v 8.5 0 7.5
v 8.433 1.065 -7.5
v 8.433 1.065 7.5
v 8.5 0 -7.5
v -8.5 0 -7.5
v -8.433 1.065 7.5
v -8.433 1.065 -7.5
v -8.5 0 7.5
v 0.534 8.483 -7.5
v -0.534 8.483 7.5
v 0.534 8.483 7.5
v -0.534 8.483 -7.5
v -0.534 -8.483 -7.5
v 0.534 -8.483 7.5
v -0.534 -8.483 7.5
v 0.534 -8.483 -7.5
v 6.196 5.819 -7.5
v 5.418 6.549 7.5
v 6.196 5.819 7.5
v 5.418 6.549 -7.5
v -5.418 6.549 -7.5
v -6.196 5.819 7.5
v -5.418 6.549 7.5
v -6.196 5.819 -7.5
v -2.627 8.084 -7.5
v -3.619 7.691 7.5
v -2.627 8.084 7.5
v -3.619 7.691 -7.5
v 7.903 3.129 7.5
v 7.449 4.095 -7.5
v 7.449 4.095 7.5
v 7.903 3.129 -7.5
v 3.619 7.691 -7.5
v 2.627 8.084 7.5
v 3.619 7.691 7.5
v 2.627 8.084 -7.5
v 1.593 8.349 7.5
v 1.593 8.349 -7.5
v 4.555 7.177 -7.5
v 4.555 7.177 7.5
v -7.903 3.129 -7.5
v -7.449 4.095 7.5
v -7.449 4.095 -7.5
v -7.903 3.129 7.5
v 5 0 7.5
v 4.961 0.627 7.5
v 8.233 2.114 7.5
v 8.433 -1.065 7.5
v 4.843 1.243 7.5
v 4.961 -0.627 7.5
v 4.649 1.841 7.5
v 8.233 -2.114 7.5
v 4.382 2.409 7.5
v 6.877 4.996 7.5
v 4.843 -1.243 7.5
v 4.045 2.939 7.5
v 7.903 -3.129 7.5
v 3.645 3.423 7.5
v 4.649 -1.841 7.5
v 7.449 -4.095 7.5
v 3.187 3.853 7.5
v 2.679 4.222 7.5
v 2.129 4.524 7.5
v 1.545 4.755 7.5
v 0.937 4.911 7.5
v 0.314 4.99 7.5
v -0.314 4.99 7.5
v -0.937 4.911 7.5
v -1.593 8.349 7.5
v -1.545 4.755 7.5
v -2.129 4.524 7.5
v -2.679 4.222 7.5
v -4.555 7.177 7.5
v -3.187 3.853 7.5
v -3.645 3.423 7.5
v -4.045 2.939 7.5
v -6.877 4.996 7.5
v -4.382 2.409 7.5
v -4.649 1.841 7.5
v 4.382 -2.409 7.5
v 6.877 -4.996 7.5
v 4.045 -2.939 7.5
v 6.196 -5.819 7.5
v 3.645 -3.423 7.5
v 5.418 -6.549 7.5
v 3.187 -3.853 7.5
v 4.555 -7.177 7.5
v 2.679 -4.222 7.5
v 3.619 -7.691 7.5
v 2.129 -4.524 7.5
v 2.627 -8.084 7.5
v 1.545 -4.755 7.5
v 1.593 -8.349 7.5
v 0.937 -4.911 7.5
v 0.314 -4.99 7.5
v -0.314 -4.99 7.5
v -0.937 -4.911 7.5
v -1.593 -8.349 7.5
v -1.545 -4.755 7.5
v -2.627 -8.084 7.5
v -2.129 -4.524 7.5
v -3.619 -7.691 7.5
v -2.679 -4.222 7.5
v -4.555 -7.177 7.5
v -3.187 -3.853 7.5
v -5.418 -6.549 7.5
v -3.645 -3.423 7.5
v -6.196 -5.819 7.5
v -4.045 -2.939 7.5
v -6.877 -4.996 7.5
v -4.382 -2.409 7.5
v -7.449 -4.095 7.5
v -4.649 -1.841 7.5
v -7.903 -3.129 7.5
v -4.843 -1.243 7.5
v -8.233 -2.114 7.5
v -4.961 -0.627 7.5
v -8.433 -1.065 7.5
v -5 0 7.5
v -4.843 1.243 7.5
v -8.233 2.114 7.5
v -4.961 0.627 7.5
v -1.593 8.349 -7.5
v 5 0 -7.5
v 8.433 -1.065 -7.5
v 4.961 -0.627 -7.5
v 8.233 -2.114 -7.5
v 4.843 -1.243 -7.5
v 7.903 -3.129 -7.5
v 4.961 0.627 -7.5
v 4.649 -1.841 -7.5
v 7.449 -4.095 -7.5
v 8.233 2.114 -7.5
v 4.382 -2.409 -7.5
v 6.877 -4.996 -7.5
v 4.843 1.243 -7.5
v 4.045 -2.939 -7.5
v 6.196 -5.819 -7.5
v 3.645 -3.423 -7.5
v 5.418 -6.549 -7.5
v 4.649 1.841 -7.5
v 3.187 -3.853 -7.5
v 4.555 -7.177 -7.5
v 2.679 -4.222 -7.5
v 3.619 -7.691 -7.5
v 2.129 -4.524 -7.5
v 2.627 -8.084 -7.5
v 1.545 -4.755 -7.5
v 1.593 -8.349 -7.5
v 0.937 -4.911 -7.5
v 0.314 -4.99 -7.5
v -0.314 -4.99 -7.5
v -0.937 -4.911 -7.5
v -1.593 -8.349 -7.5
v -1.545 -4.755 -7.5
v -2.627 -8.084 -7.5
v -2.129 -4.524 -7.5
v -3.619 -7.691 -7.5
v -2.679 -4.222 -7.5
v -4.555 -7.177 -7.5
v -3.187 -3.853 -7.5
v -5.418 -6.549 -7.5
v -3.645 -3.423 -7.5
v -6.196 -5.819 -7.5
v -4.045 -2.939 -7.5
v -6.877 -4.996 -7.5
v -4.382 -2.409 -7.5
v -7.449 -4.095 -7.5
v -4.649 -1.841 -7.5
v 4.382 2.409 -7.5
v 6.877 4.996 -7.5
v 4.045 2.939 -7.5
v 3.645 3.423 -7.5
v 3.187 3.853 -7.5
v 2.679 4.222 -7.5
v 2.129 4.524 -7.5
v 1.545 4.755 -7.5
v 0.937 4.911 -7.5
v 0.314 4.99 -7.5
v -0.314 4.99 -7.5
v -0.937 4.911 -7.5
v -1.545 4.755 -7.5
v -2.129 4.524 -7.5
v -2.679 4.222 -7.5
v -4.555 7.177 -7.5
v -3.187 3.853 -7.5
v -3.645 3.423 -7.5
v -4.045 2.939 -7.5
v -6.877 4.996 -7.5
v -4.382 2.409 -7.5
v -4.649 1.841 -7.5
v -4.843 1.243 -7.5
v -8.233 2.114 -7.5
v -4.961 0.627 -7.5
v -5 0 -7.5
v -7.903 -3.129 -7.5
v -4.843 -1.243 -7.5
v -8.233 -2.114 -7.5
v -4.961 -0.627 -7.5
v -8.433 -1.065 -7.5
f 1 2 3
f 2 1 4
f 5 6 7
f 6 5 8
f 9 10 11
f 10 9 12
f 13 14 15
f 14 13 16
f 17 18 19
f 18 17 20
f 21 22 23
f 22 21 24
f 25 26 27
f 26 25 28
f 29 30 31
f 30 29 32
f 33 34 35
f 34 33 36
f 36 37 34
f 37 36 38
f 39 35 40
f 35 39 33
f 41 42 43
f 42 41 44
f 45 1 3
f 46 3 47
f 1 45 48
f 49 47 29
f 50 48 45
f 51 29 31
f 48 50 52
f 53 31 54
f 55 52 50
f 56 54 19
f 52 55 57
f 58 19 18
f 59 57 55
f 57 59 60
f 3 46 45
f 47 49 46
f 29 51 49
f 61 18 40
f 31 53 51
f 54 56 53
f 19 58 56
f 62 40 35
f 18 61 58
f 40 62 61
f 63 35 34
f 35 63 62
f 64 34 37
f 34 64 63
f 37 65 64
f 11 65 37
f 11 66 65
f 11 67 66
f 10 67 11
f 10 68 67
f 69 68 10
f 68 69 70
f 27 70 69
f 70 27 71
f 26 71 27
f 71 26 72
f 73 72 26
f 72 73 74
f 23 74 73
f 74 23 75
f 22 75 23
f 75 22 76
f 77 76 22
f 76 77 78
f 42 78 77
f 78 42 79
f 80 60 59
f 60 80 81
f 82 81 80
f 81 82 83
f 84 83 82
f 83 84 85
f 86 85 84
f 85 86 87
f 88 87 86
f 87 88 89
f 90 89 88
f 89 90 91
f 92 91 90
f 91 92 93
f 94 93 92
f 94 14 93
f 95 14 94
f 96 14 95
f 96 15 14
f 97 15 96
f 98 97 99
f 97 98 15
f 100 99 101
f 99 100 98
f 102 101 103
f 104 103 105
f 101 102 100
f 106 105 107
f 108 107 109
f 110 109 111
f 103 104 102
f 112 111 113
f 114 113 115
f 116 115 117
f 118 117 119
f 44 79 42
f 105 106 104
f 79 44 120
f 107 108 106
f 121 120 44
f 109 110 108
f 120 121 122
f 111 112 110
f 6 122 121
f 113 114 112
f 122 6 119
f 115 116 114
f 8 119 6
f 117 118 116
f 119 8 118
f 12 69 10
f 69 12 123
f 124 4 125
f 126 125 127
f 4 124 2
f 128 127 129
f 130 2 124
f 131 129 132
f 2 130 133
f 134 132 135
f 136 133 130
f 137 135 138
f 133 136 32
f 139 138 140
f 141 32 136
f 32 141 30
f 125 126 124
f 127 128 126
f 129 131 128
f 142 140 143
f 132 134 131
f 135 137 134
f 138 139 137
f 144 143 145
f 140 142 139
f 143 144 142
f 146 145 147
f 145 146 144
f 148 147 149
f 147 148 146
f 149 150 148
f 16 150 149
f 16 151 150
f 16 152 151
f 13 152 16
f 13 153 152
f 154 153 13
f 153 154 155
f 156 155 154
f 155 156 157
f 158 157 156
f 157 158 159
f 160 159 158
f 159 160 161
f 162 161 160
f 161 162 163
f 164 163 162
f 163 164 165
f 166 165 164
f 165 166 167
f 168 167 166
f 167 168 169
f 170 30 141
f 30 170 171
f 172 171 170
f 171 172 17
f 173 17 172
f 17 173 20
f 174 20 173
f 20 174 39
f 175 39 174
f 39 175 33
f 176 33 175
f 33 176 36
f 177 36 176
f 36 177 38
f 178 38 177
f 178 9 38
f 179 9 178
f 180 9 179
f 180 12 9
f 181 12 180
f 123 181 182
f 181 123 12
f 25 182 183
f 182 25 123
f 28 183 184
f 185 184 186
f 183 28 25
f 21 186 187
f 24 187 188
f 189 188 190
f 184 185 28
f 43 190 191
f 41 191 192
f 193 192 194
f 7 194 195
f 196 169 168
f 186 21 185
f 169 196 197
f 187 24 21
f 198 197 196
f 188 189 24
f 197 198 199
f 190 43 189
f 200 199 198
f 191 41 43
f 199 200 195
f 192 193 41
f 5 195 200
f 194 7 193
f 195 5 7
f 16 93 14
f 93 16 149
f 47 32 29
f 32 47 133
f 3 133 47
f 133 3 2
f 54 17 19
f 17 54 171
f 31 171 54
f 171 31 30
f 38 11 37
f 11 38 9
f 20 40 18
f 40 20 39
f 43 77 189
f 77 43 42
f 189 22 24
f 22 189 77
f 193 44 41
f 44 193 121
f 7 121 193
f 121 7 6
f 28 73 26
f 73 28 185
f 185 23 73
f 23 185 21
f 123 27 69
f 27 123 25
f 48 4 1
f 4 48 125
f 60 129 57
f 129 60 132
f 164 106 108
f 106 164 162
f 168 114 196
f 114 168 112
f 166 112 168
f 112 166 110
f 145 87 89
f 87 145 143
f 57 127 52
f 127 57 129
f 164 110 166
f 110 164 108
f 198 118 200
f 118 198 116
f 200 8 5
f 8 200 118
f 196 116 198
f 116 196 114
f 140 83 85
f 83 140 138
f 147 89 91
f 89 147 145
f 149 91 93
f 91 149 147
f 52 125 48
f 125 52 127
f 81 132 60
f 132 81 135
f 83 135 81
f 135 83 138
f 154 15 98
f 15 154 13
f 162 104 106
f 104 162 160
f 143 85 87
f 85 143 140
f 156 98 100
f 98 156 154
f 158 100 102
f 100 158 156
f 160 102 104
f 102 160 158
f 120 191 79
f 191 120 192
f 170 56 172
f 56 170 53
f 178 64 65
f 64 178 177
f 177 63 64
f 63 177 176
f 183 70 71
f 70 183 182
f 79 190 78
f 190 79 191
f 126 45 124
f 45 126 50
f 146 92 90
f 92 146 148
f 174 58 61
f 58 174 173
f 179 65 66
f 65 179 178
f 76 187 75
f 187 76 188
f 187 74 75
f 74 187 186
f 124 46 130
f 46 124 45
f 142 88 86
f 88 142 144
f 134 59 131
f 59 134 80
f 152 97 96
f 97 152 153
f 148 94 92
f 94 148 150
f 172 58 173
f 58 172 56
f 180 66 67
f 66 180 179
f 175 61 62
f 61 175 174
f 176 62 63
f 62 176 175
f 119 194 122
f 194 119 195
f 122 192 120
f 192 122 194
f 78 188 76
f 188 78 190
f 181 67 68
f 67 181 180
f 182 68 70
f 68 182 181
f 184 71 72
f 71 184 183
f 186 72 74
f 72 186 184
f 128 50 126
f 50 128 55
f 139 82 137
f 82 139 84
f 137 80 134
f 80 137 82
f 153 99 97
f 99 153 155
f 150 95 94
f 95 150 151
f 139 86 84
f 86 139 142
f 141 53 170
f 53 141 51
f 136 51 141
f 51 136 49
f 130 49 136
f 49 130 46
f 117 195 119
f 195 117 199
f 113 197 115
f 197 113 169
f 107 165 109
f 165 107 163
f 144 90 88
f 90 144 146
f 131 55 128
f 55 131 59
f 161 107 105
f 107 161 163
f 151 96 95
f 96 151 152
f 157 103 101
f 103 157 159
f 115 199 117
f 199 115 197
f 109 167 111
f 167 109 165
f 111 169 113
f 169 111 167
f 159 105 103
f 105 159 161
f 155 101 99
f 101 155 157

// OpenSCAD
$fn = 50;


difference() {
	union() {
		translate(v = [0, 0, -7.5000000000]) {
			cylinder(h = 15, r = 8.5000000000);
		}
	}
	union() {
		translate(v = [0, 0, -100.0000000000]) {
			cylinder(h = 200, r = 5.0000000000);
		}
	}
}
